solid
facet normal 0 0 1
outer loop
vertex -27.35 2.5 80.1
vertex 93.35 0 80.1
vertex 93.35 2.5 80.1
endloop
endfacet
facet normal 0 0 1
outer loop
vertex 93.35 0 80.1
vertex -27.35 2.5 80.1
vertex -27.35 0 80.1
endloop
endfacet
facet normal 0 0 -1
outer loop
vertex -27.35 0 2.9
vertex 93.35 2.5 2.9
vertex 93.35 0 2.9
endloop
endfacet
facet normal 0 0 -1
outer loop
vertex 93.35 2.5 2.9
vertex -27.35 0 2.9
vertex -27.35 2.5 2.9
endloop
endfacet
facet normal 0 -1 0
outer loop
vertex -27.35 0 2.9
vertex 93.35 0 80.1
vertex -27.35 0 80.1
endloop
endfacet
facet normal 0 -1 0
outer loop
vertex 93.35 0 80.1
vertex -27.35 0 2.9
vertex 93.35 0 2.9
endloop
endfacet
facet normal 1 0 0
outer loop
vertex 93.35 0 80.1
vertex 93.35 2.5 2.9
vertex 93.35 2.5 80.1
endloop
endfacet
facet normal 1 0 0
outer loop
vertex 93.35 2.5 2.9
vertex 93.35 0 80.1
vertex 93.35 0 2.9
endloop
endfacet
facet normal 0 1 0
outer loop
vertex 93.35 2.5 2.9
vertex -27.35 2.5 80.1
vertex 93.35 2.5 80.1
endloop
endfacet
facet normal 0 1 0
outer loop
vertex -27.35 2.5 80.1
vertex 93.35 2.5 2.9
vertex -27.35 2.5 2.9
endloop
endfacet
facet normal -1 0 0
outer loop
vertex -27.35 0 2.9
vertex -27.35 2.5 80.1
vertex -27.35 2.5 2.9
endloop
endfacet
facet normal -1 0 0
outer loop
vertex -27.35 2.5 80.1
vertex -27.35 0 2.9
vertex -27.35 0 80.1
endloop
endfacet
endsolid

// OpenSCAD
// file: D:/Projects/assembly-workshop/outputs/Screen_5in_SCR5-G_2026-10-30/checks/geometry.scad
// SCR5-G; mm; FRONT view: X right, Z up, Y into rack. Glass/plate front Y=0.
// Measured values: work/screen-5in/Dimensions.md. Physical fit/strength UNKNOWN.
part="plate";
DROP=0.45; // coupon winner can be substituted here; all three pins use this DROP
LIP=0.8; LIP_ON=true;
LIP_EDGES=[true,true,false,false]; // left,right,bottom,top; Brian: side lips only, cosmetic
FRAME_STEP=1.5; // measured glass-edge inset to metal LCD frame, left/right only
SHIM=0; // moves rear frame seat and plate-boss mating face back
$fn=48;
GCX=33; GCZ=41.5; PW=252; PH=88.8; PT=4;
GW=120.7; GH=77.2; CLEAR=0.2; WW=GW+2*CLEAR; WH=GH+2*CLEAR;
SEAT=13.3+SHIM; FT=3;
SO=[56.45,34]; BTN_X=[45.5,35.5,25.5];
PCB_TOP=38; GAP=0.10; LEAF_T=0.8;
HOLE=[3.4,40.3,44.7];
BX=[GCX-68,GCX+68]; BZ=[10,72];
// DSI connector X extent is unmeasured: conservative assumed 8 mm inward from PCB edge.
DSI=[GCX-60.5,9.1,GCZ-38+30,8,5.25,21];
module xz(y,d){translate([0,y+d,0])rotate([90,0,0])linear_extrude(d)children();}
// rr/rack_slots copied from SCR5-F; same exact slot centres, outline shifted -0.05 Z to centre 44.4.
module rr(w,h,r){hull()for(x=[-w/2+r,w/2-r],z=[-h/2+r,h/2-r])translate([x,z])circle(r=r);}
module rack_slots(){for(x=[-118.2625,118.2625],z=[6.323,38.127,50.773,82.577])translate([x,z])hull()for(dx=[-1.5,1.5])translate([dx,0])circle(d=7);}
module cyl_y(x,y,z,d,h){translate([x,y,z])rotate([-90,0,0])cylinder(d=d,h=h);}
module window_cut(){
  xz(-0.02,4.04)translate([GCX,GCZ])square([WW,WH],center=true);
  // 0.3 x 45-degree chamfer, square corners, front only.
  translate([GCX,0.3,GCZ])rotate([90,0,0])
    linear_extrude(height=0.3,scale=[(WW+0.6)/WW,(WH+0.6)/WH])square([WW,WH],center=true);
}
module lips(){
  // Cosmetic side ledges only; rear frame/standoffs set depth and retain the screen.
  if(LIP_ON)for(i=[0:3])if(LIP_EDGES[i]){
    if(i<2)translate([GCX+(i==0?-WW/2:WW/2-LIP),2.5,GCZ-GH/2+4])cube([LIP,0.8,GH-8]);
    else translate([GCX-GW/2+4,2.5,GCZ+(i==2?-WH/2:WH/2-LIP)])cube([GW-8,0.8,LIP]);
  }
}
// Leaf/nub/bump geometry copied from SCR5-WP-A, translated to this glass centre.
module leaves(){for(x=BTN_X)translate([GCX+x-1.5,0,GCZ]){
  translate([0,0,PCB_TOP+GAP+0.9+0.1])cube([3,11.8,LEAF_T]);
  translate([0,10.2,PCB_TOP+GAP])cube([3,1.4,1.0+LEAF_T/2]);
  translate([0,10.4,PCB_TOP+GAP+1.0+LEAF_T])cube([3,1.0,0.9]);
}}
module plate(){difference(){union(){
  difference(){xz(0,PT)translate([0,PH/2])rr(PW,PH,2.5);window_cut();}
  for(x=BX,z=BZ)cyl_y(x,3.9,z,8,SEAT-3.9);
  leaves(); lips();
 }
 xz(-0.02,4.04)rack_slots();
 for(x=BTN_X)translate([GCX+x-HOLE[0]/2,-0.02,GCZ+HOLE[1]])cube([HOLE[0],SEAT+FT+0.04,HOLE[2]-HOLE[1]]);
 // Printed-in screw pilots (no heat-set OD assumption): nominal M2.5, fit UNKNOWN.
 for(x=BX,z=BZ)cyl_y(x,SEAT-6,z,2.1,6.02);
 // Rear engraving, 0.5 deep, left field.
 xz(3.5,0.52)translate([-75,40])mirror([1,0])text("SCR5-G",size=6,halign="center",font="Liberation Sans:style=Bold");
}}
module frame_blank(){
  // C-shaped perimeter; no material across the board centre / touch FPC.
  xz(SEAT,FT)translate([GCX,GCZ])difference(){square([132,76],center=true);square([116,60],center=true);}
  for(sx=[-1,1],sz=[-1,1])cyl_y(GCX+sx*SO[0],SEAT,GCZ+sz*SO[1],9,FT);
  for(x=BX,z=BZ)hull(){cyl_y(x,SEAT,z,8,FT);cyl_y(GCX+(x<GCX?-62:62),SEAT,z,8,FT);}
}
module dsi_keepout(){translate([DSI[0]-3,DSI[1]-3,DSI[2]-3])cube([DSI[3]+6,DSI[4]+6,DSI[5]+6]);}
module ribbon_route(){
  // Open left/up corridor 18 mm wide; extends past top of plate.
  translate([GCX-84,6.1,GCZ-11])cube([18,24,65]);
  translate([GCX-84,6.1,GCZ-11])cube([32,24,27]);
}
module frame(){difference(){frame_blank();dsi_keepout();ribbon_route();
 for(sx=[-1,1],sz=[-1,1])cyl_y(GCX+sx*SO[0],SEAT-0.02,GCZ+sz*SO[1],2.8,FT+0.04);
 for(x=BX,z=BZ)cyl_y(x,SEAT-0.02,z,2.8,FT+0.04);
}}
// Pin polygon/cap/notch/dot design copied unchanged from SCR5-WP-A.
module pin(d,dots){s=2*d+0.5;difference(){union(){
 translate([-1.5,0,0])rotate([90,0,90])linear_extrude(3)polygon([
 [-s-0.02,40.5],[10.2,40.5],[10.2,41.0],[11.5,41.0],[11.5+2*d,41.0-d],[15,41.0-d],[15,44.5],[-s-0.02,44.5]]);
 translate([-2.5,-s-1.5,39.6])cube([5,1.5,5.8]);
 }for(i=[0:dots-1])translate([(i-(dots-1)/2)*1.4,-s-1.5-0.01,43.5])rotate([-90,0,0])cylinder(d=0.9,h=0.4);}}
module placed_pin(i){translate([GCX+BTN_X[i],0,GCZ])pin(DROP,i+1);}
// Measured layers: cover glass 0.9 + second glass 1.6, metal frame 3.0,
// open gap 2.0, PCB 1.6. Metal frame inset ~1.5 at LEFT/RIGHT only.
// PCB centred under glass and full metal-frame top/bottom extent remain UNKNOWN.
module glass(){translate([GCX-GW/2,0,GCZ-GH/2])cube([GW,2.5,GH]);}
module lcd(){
  translate([GCX-GW/2+FRAME_STEP,2.5,GCZ-GH/2])cube([GW-2*FRAME_STEP,3.0,GH]);
}
module pcb(){translate([GCX-60.5,7.5,GCZ-38])cube([121,1.6,76]);}
module standoffs(){for(sx=[-1,1],sz=[-1,1])difference(){cyl_y(GCX+sx*SO[0],9.1,GCZ+sz*SO[1],5.5,4.2);cyl_y(GCX+sx*SO[0],9.08,GCZ+sz*SO[1],2.5,4.24);}}
module buttons(){for(x=BTN_X){
 translate([GCX+x-3.5,9.1,GCZ+38-3.4])cube([7,3.6,2.4]);
 translate([GCX+x-1.5,9.1,GCZ+37])cube([3,3.6,1]);
}}
module dsi(){translate([DSI[0],DSI[1],DSI[2]])cube([DSI[3],DSI[4],DSI[5]]);}
module touch(){translate([GCX-10,9.1,GCZ-5])cube([20,2,10]);} // lateral extent unmeasured
module dummy(){glass();lcd();pcb();standoffs();buttons();dsi();touch();}
module assembly(){color("gray")plate();color("orange")frame();for(i=[0:2])color("cyan")placed_pin(i);color([0.2,0.3,0.4,0.4])dummy();}
// main file
include <D:/Projects/assembly-workshop/outputs/Screen_5in_SCR5-G_2026-10-30/checks/geometry.scad>
glass();
